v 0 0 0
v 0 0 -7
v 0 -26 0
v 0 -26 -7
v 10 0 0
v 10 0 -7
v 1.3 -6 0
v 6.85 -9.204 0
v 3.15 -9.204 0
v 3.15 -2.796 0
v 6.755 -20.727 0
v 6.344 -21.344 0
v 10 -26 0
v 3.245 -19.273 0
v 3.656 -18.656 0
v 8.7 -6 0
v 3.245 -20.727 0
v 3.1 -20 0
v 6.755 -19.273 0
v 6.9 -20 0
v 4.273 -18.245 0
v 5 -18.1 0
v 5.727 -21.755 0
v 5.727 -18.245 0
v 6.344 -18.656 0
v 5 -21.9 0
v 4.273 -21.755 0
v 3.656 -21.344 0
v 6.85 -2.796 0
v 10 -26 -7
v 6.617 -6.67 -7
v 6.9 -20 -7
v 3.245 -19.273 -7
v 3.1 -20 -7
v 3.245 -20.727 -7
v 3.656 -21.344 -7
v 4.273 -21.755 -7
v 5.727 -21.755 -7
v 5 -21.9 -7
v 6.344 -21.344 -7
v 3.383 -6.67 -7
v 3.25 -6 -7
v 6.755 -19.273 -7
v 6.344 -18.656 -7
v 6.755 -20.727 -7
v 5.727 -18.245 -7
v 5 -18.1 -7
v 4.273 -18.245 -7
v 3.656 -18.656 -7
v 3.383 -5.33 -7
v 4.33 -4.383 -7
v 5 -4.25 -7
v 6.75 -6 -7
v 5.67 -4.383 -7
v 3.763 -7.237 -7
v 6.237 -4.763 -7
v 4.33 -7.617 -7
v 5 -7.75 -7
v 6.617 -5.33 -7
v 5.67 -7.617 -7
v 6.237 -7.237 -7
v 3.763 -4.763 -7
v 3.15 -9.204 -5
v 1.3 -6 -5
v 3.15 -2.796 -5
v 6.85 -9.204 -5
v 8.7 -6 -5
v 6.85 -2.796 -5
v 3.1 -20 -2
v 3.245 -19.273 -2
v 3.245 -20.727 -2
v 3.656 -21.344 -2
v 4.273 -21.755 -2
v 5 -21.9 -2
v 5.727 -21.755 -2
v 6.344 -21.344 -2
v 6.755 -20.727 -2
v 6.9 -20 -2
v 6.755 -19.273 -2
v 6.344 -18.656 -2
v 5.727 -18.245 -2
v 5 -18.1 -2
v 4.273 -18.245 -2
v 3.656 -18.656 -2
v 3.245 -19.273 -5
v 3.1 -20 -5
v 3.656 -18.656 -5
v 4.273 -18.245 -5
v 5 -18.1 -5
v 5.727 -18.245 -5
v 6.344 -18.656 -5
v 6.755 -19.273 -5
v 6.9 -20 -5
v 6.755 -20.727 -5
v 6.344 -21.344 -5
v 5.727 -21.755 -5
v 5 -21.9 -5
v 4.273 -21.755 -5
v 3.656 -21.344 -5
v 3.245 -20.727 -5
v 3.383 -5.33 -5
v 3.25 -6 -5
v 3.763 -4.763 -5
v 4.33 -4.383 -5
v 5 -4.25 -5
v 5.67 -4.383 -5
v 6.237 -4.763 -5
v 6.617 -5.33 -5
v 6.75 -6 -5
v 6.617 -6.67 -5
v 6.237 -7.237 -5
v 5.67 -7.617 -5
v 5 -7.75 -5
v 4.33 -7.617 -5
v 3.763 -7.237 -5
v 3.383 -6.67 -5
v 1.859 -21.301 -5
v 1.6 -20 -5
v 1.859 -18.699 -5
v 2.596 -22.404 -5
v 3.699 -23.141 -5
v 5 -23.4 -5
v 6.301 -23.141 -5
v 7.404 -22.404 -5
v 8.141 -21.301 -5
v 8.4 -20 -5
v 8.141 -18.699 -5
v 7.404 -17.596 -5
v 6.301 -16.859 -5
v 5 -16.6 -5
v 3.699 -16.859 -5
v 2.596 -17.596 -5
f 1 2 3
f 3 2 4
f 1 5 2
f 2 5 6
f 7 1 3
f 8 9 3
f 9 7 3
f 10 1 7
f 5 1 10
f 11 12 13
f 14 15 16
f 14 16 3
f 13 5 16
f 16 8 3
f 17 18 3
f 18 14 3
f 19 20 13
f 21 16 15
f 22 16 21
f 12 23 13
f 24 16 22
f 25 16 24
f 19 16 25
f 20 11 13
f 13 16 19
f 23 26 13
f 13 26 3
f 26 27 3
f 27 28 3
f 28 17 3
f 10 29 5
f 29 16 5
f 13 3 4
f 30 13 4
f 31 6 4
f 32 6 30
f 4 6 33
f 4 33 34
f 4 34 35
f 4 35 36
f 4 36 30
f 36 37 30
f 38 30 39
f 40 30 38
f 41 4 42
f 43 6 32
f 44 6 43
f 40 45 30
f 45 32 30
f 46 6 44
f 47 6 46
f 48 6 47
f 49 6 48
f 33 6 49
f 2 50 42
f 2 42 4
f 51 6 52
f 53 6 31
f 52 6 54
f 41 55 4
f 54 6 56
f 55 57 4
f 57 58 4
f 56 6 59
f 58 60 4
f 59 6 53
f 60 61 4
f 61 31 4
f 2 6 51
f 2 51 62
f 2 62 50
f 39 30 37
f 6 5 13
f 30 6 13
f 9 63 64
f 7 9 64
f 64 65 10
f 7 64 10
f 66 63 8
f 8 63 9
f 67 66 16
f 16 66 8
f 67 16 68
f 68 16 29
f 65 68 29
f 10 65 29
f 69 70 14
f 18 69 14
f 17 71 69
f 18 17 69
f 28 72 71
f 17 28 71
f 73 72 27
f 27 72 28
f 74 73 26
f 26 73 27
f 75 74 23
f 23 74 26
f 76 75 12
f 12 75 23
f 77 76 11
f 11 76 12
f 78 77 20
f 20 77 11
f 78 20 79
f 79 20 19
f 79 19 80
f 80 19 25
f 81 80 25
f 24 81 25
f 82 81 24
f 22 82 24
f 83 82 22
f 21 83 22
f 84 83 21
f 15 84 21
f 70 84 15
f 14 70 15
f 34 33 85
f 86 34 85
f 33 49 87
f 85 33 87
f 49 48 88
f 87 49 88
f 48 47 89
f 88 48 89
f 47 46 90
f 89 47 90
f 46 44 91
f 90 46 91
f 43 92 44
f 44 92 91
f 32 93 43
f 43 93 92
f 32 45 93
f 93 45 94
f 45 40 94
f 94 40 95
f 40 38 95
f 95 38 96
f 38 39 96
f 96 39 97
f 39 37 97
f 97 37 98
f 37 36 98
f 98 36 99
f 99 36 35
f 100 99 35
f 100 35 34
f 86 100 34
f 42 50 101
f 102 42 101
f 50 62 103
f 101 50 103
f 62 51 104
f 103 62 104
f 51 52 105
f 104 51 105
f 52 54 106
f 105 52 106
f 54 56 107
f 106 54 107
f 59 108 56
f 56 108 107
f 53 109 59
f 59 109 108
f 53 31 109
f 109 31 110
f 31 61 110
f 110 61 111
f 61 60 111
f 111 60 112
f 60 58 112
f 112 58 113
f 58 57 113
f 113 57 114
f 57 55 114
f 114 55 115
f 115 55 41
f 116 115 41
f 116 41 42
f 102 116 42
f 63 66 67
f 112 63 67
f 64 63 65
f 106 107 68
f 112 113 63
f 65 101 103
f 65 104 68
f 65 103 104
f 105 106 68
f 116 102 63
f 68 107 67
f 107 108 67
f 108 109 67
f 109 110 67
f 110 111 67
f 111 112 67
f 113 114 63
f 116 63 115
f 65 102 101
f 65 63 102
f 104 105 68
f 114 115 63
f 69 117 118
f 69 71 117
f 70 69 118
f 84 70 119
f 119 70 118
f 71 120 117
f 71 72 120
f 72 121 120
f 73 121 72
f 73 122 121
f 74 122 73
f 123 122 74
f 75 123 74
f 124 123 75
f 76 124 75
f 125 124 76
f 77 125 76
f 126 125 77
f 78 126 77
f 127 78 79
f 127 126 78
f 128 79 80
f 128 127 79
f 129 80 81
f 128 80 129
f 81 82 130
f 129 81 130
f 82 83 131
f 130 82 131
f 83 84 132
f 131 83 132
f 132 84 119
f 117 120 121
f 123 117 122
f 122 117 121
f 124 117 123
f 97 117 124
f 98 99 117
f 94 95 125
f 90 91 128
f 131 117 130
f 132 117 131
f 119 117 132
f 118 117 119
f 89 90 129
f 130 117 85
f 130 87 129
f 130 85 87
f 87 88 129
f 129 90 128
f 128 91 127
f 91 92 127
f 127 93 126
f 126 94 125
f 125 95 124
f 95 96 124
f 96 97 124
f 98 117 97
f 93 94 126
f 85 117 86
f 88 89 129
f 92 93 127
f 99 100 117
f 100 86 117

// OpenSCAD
// For mounting M3 stuff to wood

// screw length - board thickness - margin
thickness = 20-12-1;
$fn=16;

rotate([180,0,0]) difference(){
    cube([10,26,thickness]);
    translate([5,6,0]){
        cylinder(r=1.75, h=thickness);
        cylinder(r=3.7, h=thickness-2, $fn=6);
    }
    
    translate([5,20,0]){
        cylinder(r=1.9, h=thickness);
        translate([0,0,2]) cylinder(r1=1.9,r2=3.4, h=3);       
   }    

}
